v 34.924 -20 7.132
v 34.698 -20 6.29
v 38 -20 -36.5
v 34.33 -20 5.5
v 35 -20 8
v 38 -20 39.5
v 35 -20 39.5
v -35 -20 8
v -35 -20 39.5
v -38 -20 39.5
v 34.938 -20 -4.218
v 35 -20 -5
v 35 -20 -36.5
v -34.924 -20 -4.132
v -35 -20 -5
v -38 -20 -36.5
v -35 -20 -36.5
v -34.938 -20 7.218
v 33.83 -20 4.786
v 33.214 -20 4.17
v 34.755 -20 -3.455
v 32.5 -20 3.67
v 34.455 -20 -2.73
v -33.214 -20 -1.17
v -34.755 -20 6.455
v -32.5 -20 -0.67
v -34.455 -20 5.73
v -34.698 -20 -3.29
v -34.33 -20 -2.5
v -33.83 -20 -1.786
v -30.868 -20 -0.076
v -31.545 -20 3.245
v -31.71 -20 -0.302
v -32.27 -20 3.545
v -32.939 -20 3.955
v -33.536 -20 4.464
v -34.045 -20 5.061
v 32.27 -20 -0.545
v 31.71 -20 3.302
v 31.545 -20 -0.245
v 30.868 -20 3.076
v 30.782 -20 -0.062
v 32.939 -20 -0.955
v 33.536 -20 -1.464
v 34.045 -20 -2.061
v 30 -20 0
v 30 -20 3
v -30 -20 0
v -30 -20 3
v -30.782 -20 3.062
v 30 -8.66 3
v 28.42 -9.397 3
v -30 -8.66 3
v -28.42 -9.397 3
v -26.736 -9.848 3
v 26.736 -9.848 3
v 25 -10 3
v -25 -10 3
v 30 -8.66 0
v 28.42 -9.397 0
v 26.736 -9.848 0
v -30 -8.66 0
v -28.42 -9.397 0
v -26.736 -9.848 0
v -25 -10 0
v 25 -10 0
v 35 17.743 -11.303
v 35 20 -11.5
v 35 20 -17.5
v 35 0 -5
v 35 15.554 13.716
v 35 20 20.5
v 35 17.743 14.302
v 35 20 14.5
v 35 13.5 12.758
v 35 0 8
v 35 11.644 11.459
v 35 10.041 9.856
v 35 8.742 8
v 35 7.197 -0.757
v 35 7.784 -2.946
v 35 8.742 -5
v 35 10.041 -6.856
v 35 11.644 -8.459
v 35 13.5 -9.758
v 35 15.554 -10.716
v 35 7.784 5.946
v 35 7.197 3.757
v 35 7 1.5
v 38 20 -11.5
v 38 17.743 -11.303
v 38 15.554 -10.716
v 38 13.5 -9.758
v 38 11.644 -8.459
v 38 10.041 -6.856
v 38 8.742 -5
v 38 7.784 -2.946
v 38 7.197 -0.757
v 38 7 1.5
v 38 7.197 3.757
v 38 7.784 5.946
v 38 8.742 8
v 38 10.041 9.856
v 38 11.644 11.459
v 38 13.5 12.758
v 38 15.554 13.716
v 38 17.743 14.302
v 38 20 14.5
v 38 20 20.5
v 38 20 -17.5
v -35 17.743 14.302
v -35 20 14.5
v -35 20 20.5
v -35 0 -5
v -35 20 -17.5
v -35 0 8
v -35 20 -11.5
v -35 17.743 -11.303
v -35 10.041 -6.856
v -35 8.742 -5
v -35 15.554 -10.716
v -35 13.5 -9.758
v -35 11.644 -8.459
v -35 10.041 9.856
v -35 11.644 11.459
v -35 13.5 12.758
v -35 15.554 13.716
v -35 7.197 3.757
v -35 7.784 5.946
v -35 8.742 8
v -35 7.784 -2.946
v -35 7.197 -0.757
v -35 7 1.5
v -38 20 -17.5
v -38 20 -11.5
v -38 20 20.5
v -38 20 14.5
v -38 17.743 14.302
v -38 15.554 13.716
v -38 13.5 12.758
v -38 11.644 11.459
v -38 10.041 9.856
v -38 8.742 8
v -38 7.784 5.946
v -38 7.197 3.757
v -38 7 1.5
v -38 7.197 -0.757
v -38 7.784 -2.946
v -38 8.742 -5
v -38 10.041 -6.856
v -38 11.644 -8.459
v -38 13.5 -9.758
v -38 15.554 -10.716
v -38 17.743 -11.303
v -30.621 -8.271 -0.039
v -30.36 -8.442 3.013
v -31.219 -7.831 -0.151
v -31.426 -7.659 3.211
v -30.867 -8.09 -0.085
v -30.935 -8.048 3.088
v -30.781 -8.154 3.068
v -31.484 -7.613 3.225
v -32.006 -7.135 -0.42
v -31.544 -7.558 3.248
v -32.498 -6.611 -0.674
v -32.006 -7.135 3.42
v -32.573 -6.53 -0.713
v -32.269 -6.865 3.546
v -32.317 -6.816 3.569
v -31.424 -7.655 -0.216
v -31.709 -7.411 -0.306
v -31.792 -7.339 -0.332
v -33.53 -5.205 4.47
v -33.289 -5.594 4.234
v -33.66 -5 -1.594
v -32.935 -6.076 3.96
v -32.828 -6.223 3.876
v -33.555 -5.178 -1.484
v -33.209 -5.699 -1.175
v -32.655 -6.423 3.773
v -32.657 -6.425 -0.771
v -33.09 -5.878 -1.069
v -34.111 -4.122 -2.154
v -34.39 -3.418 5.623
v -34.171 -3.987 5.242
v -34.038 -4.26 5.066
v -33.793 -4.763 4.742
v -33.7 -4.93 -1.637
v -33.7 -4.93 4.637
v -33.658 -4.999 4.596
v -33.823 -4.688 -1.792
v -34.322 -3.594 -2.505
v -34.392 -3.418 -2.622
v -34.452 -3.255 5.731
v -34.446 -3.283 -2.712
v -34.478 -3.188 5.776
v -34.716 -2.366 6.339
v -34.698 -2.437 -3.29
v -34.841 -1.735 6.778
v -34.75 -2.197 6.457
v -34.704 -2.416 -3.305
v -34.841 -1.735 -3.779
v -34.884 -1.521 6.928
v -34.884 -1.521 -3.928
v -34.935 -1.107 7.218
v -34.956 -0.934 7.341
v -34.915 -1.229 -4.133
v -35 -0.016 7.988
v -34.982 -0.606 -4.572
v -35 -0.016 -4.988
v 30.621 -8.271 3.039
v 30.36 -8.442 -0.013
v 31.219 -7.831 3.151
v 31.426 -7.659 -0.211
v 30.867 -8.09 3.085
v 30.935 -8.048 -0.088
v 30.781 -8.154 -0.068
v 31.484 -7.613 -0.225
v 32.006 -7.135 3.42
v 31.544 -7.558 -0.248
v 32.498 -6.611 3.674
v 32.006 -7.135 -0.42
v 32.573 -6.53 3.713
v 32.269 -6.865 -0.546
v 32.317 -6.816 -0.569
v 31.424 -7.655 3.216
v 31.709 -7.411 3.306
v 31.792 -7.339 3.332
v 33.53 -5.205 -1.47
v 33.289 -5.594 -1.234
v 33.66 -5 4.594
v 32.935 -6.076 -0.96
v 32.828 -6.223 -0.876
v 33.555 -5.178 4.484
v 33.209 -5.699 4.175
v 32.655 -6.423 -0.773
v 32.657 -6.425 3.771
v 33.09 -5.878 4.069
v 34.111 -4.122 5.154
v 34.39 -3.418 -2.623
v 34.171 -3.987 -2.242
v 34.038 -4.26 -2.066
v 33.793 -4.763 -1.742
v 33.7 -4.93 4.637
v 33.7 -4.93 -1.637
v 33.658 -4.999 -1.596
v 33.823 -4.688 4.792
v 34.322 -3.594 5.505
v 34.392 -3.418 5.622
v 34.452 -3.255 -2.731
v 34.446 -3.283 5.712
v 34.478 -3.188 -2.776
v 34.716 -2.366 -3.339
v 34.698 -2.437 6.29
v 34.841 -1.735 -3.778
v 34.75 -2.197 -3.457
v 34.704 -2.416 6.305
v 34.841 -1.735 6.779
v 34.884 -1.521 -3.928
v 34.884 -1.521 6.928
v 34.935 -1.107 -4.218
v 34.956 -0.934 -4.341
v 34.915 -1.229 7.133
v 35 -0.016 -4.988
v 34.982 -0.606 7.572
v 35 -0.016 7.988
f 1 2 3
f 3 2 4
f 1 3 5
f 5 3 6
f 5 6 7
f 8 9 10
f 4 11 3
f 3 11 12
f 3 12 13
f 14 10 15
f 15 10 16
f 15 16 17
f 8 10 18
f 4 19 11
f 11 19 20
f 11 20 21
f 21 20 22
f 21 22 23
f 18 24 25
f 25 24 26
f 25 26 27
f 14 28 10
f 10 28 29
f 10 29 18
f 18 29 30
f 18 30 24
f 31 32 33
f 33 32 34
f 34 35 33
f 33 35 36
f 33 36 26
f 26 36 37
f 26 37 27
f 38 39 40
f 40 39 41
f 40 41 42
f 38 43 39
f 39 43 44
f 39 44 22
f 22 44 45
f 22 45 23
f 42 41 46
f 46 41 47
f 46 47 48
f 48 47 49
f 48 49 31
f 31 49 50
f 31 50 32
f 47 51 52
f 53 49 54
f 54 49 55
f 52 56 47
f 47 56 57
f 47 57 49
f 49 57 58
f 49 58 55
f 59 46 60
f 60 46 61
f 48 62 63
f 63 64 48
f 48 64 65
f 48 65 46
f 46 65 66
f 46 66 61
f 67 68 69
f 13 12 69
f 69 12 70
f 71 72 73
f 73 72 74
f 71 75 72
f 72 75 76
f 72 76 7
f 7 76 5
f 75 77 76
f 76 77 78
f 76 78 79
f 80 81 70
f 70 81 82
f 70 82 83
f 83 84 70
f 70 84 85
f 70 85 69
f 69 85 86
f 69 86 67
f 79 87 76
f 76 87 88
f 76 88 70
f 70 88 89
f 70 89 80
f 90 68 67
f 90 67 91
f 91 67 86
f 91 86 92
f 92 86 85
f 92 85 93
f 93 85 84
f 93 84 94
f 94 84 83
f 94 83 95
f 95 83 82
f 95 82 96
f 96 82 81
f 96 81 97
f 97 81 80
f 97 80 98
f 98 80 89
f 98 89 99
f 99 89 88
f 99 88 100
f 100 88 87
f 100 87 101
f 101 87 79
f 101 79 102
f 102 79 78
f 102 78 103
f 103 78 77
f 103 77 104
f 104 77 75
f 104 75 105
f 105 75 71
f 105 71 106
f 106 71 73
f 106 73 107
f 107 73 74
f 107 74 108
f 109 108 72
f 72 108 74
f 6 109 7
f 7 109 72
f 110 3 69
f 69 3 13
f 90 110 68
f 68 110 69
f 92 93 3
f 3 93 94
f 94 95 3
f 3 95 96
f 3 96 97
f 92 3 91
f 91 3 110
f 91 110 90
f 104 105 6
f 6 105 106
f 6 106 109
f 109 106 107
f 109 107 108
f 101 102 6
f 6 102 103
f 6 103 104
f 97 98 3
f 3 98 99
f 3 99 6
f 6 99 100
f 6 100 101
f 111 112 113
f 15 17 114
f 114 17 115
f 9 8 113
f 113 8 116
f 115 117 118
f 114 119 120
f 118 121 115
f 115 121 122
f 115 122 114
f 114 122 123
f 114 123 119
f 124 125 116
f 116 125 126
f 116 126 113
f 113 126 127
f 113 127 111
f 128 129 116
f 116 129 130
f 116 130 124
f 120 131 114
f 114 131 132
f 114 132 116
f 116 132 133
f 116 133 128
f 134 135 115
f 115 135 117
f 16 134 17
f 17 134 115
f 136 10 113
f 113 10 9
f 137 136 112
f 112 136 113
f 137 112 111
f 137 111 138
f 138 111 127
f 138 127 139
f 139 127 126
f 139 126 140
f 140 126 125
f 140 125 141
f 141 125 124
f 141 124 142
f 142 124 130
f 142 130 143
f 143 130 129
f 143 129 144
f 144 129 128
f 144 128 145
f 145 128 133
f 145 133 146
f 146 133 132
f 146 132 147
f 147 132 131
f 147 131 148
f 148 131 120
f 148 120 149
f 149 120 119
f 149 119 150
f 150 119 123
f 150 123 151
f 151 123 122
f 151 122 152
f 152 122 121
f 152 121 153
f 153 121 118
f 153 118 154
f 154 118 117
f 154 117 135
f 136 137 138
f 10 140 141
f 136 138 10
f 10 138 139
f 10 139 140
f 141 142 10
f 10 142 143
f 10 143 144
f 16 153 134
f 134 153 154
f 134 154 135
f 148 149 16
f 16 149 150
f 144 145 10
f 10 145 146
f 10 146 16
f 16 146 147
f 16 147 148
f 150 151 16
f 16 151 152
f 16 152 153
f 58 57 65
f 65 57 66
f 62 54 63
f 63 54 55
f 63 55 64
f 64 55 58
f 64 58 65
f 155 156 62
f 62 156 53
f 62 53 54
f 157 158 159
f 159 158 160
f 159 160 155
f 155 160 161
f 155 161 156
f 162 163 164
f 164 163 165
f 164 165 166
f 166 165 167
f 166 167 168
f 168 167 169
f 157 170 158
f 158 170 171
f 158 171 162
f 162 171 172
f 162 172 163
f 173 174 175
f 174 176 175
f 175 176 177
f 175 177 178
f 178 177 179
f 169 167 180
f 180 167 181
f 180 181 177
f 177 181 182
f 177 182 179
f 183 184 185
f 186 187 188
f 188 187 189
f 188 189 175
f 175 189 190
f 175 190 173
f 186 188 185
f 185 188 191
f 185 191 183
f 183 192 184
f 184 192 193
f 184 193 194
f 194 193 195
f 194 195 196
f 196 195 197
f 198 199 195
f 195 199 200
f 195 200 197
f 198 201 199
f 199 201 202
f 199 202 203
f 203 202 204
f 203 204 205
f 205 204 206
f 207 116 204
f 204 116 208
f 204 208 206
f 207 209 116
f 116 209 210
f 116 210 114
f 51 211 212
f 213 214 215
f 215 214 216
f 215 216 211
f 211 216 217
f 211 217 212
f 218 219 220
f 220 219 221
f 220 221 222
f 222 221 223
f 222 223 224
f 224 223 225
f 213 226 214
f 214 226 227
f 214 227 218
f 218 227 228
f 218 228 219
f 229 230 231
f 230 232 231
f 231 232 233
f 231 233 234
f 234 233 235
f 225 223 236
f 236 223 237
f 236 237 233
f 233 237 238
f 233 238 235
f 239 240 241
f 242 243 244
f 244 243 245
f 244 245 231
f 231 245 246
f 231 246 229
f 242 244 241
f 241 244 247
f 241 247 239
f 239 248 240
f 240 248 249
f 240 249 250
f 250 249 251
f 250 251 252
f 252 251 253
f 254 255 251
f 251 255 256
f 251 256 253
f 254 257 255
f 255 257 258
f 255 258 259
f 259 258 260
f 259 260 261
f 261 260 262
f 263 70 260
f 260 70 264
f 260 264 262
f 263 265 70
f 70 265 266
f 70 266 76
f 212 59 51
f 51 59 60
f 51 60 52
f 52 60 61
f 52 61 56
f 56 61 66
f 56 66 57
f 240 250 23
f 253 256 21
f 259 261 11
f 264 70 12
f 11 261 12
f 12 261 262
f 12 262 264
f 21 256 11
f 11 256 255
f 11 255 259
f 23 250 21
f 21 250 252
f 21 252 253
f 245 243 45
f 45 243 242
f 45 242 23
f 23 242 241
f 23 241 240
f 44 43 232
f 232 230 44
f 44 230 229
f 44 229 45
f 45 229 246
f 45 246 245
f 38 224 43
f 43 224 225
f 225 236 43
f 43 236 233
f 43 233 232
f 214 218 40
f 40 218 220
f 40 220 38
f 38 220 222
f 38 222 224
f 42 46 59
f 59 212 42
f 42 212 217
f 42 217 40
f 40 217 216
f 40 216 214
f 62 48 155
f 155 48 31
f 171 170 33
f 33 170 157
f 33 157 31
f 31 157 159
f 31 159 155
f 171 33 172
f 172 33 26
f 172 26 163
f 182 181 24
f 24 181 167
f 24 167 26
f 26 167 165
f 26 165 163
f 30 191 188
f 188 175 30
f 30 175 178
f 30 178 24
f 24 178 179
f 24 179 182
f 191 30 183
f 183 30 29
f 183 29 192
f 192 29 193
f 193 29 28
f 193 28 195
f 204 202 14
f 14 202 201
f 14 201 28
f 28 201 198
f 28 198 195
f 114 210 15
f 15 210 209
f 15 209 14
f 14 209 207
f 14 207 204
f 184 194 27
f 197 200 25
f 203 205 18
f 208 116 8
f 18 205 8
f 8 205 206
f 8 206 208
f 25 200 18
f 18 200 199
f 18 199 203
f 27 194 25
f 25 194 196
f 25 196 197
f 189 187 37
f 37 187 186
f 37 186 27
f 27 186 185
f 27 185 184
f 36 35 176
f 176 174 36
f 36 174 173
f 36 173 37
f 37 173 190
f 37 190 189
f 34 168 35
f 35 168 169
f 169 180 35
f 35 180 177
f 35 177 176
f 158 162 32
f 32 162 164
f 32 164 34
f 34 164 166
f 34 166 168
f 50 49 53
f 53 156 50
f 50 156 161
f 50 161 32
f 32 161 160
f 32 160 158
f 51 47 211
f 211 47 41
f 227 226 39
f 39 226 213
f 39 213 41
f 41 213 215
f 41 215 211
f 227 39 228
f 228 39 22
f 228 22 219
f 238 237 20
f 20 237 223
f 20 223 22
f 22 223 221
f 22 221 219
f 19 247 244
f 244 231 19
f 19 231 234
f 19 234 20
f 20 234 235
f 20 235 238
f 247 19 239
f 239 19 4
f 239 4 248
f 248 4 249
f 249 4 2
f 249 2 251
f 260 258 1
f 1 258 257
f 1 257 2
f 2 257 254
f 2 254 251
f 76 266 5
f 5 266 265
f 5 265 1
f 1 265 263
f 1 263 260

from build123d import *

# Parameters (mm, degrees)
ESQUISSE1_W             = 70
ESQUISSE1_H             = 40
BOSS_EXTRU_1_DEPTH      = 3
BOSS_EXTRU_2_DEPTH      = 3
ESQUISSE3_W             = 70
ESQUISSE3_H             = 30
ENL_V_MAT_EXTRU_1_DEPTH = 3
CONG_1_R                = 10
CONG_2_R                = 5


with BuildPart() as part:
    # Esquisse1 → Boss.-Extru.1 (new body)
    with BuildSketch(Plane.XY):
        Rectangle(ESQUISSE1_W, ESQUISSE1_H)
    extrude(amount=BOSS_EXTRU_1_DEPTH)

    # Esquisse2 → Boss.-Extru.2 (add)
    with BuildSketch(Plane(origin=(35, 0, 0), x_dir=(0, 0, -1), z_dir=(1, 0, 0))):
        with BuildLine():
            Line((-14.5, 20), (-20.5, 20))
            Line((-20.5, 20), (-39.5, -20))
            Line((-39.5, -20), (-36.086461528, -20))
            Line((-36.086461528, -20), (-7.955603951, -20))
            Line((-7.955603951, -20), (4.955603951, -20))
            Line((4.955603951, -20), (33.086461528, -20))
            Line((33.086461528, -20), (36.5, -20))
            Line((36.5, -20), (17.5, 20))
            Line((17.5, 20), (11.5, 20))
            ThreePointArc((11.5, 20), (7.692388155, 10.807611845), (-1.5, 7))
            ThreePointArc((-1.5, 7), (-10.692388155, 10.807611845), (-14.5, 20))
        make_face()
    boss_extru_2 = extrude(amount=BOSS_EXTRU_2_DEPTH)

    # Symétrie1: Boss.-Extru.2 across plane
    add(boss_extru_2.mirror(Plane(origin=(0, 0, 0), x_dir=(0, 0, 1), z_dir=(1, 0, 0))))

    # Esquisse3 → Enlèv. mat.-Extru.1 (cut)
    with BuildSketch(Plane.XY.offset(3)):
        with Locations((0, 5)):
            Rectangle(ESQUISSE3_W, ESQUISSE3_H)
    extrude(amount=-ENL_V_MAT_EXTRU_1_DEPTH, mode=Mode.SUBTRACT)

    # Congé1
    cong_1_edges = [part.edges().sort_by_distance(p)[0] for p in [
        (-35, -10, 1.5),
        (35, -10, 1.5),
    ]]
    fillet(cong_1_edges, radius=CONG_1_R)

    # Congé2
    cong_2_edges = [part.edges().sort_by_distance(p)[0] for p in [
        (35, -5, 0),
        (-35, -5, 0),
        (-35, -5, 3),
        (35, -5, 3),
    ]]
    fillet(cong_2_edges, radius=CONG_2_R)


solid = part.part
